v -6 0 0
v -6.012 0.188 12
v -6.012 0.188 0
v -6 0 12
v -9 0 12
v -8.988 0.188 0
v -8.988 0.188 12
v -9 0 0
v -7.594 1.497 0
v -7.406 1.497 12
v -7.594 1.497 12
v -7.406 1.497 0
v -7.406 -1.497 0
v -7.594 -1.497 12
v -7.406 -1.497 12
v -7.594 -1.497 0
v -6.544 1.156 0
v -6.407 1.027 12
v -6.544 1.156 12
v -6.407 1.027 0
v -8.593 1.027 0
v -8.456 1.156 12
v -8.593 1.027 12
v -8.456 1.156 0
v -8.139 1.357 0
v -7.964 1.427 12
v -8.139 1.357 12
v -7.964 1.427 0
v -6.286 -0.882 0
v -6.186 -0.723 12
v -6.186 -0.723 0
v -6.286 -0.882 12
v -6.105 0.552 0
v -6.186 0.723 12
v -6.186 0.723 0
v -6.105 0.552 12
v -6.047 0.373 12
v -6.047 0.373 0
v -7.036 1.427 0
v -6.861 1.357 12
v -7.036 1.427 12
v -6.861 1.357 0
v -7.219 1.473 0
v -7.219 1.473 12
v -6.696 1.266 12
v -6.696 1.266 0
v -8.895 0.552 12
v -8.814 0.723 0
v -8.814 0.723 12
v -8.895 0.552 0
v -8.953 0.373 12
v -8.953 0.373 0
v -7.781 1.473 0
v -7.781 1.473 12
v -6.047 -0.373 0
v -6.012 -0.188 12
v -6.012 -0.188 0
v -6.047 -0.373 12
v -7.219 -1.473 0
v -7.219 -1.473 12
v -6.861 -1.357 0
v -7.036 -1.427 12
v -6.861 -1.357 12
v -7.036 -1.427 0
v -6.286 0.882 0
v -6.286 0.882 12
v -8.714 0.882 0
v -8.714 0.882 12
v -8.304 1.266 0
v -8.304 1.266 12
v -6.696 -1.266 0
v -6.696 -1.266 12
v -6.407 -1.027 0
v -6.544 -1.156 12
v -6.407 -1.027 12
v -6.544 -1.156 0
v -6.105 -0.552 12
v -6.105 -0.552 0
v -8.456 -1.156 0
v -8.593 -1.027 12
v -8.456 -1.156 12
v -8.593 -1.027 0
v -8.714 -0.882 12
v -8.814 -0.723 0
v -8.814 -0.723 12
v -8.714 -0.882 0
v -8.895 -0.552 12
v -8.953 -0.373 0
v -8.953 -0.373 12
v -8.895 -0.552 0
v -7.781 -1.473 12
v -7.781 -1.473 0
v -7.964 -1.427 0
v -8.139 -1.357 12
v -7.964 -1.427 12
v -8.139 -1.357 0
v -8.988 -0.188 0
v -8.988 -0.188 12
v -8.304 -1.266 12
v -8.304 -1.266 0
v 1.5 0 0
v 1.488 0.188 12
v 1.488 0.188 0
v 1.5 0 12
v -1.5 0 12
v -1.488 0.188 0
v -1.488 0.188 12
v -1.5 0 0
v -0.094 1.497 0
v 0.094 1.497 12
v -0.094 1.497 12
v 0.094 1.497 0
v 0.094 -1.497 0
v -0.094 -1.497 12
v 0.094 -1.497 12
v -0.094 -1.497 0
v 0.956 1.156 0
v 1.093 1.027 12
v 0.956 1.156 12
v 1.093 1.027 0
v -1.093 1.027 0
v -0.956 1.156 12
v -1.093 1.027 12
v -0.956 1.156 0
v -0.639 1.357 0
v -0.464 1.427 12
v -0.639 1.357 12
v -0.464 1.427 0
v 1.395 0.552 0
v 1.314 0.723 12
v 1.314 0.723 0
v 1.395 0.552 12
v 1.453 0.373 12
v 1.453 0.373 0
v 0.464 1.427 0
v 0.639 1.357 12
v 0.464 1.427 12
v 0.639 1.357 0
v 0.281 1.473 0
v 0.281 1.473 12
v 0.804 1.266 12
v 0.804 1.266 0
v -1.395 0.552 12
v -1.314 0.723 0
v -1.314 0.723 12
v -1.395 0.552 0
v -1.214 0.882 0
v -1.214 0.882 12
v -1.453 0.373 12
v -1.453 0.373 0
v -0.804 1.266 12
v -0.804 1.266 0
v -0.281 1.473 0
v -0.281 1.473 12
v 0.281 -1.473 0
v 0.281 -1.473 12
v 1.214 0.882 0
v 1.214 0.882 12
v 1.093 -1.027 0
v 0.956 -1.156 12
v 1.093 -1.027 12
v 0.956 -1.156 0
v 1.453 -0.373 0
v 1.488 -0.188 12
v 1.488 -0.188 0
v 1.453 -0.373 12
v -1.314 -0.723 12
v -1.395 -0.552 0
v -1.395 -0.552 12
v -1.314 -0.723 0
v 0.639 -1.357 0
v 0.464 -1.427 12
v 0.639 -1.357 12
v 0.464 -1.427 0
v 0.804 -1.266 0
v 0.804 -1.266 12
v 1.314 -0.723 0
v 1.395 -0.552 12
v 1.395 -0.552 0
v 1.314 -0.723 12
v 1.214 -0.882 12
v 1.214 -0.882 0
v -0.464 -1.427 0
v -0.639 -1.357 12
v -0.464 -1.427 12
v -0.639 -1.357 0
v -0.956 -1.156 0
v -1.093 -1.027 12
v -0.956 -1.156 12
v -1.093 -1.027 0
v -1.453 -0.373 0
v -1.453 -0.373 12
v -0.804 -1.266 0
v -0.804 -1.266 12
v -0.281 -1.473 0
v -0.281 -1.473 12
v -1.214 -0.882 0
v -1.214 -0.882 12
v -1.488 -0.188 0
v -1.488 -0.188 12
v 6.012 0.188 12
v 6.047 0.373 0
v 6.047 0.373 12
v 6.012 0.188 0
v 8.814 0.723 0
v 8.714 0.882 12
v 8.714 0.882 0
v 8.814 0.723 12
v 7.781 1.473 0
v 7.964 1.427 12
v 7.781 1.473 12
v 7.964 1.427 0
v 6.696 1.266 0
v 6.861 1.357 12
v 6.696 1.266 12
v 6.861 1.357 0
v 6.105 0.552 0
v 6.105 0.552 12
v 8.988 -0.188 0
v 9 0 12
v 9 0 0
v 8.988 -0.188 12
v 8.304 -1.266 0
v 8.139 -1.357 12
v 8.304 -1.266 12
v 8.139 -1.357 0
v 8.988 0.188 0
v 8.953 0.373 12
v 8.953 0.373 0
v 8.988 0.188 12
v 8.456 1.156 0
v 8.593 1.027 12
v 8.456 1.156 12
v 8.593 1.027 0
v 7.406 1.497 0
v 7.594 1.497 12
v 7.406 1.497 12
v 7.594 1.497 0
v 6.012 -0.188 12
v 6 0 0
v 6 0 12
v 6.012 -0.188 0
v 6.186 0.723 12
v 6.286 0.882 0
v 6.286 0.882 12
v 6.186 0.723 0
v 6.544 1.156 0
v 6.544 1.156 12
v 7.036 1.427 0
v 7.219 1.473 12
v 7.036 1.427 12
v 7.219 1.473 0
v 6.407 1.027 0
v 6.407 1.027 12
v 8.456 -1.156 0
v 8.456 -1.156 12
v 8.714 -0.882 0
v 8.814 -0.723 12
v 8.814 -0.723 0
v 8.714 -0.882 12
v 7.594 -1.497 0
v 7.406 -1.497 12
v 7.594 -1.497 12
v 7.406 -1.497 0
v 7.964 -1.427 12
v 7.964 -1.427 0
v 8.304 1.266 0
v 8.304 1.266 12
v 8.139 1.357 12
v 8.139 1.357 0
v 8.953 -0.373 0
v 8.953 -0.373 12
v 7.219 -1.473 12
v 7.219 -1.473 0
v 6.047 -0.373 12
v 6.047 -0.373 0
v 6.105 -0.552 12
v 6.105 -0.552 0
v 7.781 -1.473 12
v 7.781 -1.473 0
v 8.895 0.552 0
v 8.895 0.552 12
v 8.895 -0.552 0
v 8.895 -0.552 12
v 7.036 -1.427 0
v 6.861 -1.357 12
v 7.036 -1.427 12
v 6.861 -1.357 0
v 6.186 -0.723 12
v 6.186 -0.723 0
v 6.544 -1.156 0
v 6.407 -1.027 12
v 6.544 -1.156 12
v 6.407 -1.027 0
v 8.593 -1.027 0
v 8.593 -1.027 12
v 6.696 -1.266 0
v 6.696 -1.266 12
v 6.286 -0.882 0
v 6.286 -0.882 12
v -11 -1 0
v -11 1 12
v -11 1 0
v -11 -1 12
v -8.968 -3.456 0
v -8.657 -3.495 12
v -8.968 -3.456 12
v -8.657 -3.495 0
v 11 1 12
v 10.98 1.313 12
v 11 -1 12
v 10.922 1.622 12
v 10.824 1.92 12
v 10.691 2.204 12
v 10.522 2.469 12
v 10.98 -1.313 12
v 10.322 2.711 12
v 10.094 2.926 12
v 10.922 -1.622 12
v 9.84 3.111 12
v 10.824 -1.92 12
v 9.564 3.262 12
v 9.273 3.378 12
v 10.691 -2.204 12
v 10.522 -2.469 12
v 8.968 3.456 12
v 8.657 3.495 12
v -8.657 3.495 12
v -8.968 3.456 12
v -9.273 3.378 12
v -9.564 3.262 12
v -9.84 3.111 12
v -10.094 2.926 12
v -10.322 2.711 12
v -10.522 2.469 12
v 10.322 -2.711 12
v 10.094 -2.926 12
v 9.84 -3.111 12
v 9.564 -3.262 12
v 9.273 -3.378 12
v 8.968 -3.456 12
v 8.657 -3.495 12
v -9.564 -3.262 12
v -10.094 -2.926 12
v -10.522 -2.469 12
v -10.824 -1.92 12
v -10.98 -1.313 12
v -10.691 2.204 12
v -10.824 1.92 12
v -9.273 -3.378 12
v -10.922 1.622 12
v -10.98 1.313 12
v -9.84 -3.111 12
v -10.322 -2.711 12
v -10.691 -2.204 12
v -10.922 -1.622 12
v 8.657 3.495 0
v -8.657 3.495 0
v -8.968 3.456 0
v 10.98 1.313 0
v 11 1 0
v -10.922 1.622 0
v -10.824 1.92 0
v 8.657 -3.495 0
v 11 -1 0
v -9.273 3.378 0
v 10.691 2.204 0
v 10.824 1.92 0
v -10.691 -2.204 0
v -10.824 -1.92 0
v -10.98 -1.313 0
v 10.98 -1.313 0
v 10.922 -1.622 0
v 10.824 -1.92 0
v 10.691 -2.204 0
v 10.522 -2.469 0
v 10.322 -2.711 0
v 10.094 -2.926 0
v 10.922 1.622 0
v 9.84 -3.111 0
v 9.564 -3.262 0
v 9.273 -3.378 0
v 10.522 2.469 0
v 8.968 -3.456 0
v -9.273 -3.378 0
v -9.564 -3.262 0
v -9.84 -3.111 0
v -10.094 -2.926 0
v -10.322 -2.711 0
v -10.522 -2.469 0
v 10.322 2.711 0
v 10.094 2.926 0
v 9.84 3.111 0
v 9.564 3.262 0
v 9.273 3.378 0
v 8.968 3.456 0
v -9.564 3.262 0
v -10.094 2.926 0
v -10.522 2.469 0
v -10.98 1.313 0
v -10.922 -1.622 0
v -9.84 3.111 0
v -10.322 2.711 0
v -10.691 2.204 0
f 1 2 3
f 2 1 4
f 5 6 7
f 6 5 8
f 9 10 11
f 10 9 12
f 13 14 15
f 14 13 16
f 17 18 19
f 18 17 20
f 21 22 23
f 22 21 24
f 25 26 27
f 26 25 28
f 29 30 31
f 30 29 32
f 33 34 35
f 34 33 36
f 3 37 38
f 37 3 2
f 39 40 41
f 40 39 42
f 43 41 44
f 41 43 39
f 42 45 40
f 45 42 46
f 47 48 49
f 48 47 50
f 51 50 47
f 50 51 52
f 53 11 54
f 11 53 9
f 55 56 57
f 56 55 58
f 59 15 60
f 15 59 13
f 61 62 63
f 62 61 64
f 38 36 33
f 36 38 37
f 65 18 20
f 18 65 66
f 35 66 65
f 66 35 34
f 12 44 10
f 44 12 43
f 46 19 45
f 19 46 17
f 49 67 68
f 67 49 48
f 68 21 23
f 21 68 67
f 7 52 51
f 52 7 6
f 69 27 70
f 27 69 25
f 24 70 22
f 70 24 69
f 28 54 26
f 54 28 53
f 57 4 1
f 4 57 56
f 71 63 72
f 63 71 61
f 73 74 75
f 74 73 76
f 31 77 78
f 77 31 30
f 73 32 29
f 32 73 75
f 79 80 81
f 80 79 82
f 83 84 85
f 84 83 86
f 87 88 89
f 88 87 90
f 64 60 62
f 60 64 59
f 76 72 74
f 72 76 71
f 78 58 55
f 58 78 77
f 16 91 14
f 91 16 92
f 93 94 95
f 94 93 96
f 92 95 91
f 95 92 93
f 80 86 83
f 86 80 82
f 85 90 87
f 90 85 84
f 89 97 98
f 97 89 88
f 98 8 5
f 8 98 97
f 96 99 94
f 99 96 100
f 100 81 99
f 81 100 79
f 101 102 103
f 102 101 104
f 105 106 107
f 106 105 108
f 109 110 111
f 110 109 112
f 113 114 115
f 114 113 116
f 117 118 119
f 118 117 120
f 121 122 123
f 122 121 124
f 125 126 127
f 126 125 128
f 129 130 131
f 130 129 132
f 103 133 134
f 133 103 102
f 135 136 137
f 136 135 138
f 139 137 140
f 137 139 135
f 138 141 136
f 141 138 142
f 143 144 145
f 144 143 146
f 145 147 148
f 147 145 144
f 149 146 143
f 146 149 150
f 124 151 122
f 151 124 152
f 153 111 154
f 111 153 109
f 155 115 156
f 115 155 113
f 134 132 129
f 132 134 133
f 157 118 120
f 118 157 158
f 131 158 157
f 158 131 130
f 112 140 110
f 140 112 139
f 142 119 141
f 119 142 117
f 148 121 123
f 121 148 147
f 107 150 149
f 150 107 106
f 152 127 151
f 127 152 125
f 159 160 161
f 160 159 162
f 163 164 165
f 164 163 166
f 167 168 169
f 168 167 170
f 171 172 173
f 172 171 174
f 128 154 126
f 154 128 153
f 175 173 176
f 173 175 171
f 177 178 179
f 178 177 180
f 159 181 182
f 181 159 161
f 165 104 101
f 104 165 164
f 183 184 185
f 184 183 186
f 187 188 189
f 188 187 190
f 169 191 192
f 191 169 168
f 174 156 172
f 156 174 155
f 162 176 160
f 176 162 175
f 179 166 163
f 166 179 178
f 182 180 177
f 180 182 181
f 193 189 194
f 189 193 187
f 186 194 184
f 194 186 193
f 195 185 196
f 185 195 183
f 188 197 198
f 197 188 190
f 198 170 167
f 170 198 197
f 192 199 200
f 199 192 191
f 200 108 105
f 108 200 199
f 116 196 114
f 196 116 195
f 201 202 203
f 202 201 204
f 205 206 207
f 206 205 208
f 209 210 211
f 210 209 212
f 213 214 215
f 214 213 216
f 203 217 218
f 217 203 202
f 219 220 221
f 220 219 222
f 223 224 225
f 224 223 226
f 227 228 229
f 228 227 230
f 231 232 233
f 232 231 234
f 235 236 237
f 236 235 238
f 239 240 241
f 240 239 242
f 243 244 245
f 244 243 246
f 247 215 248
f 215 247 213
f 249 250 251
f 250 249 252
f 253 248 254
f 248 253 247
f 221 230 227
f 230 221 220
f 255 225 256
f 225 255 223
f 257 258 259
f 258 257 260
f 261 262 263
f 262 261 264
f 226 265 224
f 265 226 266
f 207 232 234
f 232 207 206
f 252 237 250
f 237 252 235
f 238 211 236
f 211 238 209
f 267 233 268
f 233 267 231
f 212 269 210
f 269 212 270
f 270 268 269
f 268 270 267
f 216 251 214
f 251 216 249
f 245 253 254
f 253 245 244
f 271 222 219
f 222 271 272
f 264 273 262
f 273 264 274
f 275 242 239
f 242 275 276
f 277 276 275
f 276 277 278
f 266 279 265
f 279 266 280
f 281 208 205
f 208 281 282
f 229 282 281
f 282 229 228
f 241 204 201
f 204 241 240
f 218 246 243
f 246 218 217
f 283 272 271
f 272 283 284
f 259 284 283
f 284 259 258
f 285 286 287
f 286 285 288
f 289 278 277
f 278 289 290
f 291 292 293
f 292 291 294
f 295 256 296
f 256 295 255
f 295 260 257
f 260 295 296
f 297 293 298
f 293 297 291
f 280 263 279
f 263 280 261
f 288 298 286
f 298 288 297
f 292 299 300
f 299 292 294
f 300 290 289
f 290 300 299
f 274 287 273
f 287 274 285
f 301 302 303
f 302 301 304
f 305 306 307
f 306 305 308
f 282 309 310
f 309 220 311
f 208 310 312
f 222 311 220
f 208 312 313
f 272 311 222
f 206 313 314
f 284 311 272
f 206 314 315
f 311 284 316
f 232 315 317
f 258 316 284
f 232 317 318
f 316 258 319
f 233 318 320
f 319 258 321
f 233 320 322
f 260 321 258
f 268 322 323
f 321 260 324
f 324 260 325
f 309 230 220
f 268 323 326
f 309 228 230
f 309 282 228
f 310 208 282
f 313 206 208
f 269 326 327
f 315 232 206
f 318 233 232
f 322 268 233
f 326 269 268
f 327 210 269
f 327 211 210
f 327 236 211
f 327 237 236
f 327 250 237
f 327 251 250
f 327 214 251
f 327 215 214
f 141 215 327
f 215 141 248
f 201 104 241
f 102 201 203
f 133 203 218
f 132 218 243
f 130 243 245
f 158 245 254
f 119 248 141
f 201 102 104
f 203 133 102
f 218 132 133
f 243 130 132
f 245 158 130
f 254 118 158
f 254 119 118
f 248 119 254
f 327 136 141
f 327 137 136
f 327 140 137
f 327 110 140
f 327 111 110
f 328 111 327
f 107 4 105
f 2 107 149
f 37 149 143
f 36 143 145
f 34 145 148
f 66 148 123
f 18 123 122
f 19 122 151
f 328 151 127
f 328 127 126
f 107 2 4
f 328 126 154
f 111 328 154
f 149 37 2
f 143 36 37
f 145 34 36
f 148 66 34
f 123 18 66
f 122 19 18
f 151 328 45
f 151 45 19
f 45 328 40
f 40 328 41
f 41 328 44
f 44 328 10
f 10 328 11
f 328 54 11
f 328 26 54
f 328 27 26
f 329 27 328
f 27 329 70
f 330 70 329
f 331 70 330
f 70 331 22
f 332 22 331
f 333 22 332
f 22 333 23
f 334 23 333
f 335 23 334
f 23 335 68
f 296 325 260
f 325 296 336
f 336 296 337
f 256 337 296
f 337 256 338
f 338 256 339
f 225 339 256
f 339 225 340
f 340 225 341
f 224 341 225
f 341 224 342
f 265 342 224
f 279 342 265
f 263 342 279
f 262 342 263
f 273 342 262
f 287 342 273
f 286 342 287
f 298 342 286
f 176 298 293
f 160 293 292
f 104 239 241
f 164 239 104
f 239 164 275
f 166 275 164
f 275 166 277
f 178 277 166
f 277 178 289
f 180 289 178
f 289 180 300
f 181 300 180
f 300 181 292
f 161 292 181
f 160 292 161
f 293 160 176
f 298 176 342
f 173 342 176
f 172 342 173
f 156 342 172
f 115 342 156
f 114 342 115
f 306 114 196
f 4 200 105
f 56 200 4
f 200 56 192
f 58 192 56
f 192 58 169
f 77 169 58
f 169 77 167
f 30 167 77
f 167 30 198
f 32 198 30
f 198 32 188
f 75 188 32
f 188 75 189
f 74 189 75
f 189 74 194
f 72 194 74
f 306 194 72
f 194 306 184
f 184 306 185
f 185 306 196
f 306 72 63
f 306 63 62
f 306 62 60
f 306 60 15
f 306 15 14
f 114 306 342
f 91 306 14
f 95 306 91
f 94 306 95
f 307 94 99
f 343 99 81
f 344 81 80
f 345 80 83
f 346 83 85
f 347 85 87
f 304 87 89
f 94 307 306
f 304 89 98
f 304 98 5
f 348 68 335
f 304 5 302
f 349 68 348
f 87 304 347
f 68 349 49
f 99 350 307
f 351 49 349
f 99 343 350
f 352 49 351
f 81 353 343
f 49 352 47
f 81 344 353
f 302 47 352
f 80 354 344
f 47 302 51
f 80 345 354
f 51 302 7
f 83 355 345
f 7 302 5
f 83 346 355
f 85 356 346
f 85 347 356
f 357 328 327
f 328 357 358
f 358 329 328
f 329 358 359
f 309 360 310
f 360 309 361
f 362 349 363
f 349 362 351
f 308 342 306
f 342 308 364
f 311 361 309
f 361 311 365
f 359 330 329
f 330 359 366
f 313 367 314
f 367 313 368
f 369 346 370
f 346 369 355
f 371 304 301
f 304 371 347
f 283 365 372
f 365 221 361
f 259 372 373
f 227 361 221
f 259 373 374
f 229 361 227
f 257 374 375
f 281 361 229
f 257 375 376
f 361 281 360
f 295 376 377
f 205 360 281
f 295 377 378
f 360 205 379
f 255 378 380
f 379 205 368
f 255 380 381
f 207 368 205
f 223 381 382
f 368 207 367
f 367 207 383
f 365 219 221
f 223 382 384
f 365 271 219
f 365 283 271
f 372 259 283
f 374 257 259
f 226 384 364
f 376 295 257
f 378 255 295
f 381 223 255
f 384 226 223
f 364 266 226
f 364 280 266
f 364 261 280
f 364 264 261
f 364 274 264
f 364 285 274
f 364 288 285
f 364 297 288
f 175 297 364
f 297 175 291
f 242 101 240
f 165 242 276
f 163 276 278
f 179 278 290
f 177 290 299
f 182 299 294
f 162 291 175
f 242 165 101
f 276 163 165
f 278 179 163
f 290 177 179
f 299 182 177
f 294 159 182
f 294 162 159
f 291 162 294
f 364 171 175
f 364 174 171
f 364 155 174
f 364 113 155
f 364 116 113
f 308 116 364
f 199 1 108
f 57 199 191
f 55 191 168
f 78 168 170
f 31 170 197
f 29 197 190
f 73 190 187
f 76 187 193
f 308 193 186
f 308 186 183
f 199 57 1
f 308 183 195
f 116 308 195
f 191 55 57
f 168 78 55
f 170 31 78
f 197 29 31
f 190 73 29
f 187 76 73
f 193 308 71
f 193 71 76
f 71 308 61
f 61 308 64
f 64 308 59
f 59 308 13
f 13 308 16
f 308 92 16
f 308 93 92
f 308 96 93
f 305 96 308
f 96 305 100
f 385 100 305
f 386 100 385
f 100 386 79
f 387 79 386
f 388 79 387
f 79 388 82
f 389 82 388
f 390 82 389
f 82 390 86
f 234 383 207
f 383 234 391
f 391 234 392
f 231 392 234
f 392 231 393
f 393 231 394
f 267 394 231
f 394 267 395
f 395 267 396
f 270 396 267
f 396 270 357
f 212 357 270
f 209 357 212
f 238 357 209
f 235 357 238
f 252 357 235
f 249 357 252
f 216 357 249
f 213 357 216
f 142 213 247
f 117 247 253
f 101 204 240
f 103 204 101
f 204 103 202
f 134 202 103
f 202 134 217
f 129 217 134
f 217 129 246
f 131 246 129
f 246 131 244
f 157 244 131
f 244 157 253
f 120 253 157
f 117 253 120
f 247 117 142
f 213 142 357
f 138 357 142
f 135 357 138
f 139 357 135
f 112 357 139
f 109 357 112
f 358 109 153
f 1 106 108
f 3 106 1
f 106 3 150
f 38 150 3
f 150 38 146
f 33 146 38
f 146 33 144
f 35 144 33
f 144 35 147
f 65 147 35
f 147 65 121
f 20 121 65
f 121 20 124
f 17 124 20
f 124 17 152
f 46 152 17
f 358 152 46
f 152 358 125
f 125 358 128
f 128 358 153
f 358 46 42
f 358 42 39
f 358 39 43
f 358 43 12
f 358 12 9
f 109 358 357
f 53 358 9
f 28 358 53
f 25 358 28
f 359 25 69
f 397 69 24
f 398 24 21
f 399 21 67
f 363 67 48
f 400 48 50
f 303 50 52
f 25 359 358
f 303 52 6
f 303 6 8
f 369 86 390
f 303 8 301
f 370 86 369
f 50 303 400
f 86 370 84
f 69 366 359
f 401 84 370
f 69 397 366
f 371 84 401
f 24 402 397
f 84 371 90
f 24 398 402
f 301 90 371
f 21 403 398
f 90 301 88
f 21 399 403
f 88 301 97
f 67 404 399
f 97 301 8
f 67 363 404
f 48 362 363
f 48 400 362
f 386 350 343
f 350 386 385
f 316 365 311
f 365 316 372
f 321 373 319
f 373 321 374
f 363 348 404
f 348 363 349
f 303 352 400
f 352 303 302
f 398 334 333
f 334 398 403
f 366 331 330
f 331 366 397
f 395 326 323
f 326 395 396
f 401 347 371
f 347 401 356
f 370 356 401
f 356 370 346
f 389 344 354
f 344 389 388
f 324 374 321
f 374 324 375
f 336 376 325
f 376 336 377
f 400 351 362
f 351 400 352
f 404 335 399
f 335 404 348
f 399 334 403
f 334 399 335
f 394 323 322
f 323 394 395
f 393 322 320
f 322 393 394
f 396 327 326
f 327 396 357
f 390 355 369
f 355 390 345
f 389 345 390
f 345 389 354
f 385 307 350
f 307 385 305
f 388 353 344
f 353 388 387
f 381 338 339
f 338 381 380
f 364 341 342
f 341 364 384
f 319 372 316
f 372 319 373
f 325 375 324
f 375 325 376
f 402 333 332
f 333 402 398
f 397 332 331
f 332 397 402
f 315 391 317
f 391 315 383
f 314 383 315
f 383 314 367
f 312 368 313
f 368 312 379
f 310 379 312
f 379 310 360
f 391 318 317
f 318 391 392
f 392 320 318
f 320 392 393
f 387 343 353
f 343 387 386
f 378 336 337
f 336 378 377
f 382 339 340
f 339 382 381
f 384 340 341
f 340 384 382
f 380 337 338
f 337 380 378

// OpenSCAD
$fn = 50;


difference() {
	union() {
		translate(v = [0, 0, 0]) {
			rotate(a = [0, 0, 0]) {
				hull() {
					translate(v = [-8.5000000000, 1.0000000000, 0]) {
						rotate(a = [0, 0, 0]) {
							translate(v = [0, 0, 0]) {
								rotate(a = [0, 0, 0]) {
									cylinder(h = 12, r = 2.5000000000);
								}
							}
						}
					}
					translate(v = [8.5000000000, 1.0000000000, 0]) {
						rotate(a = [0, 0, 0]) {
							translate(v = [0, 0, 0]) {
								rotate(a = [0, 0, 0]) {
									cylinder(h = 12, r = 2.5000000000);
								}
							}
						}
					}
					translate(v = [-8.5000000000, -1.0000000000, 0]) {
						rotate(a = [0, 0, 0]) {
							translate(v = [0, 0, 0]) {
								rotate(a = [0, 0, 0]) {
									cylinder(h = 12, r = 2.5000000000);
								}
							}
						}
					}
					translate(v = [8.5000000000, -1.0000000000, 0]) {
						rotate(a = [0, 0, 0]) {
							translate(v = [0, 0, 0]) {
								rotate(a = [0, 0, 0]) {
									cylinder(h = 12, r = 2.5000000000);
								}
							}
						}
					}
				}
			}
		}
	}
	union() {
		translate(v = [-7.5000000000, 0.0000000000, 0]) {
			rotate(a = [0, 0, 0]) {
				translate(v = [0, 0, -50]) {
					rotate(a = [0, 0, 0]) {
						cylinder(h = 100, r = 1.5000000000);
					}
				}
			}
		}
		translate(v = [0.0000000000, 0.0000000000, 0]) {
			rotate(a = [0, 0, 0]) {
				translate(v = [0, 0, -50]) {
					rotate(a = [0, 0, 0]) {
						cylinder(h = 100, r = 1.5000000000);
					}
				}
			}
		}
		translate(v = [7.5000000000, 0.0000000000, 0]) {
			rotate(a = [0, 0, 0]) {
				translate(v = [0, 0, -50]) {
					rotate(a = [0, 0, 0]) {
						cylinder(h = 100, r = 1.5000000000);
					}
				}
			}
		}
	}
}
